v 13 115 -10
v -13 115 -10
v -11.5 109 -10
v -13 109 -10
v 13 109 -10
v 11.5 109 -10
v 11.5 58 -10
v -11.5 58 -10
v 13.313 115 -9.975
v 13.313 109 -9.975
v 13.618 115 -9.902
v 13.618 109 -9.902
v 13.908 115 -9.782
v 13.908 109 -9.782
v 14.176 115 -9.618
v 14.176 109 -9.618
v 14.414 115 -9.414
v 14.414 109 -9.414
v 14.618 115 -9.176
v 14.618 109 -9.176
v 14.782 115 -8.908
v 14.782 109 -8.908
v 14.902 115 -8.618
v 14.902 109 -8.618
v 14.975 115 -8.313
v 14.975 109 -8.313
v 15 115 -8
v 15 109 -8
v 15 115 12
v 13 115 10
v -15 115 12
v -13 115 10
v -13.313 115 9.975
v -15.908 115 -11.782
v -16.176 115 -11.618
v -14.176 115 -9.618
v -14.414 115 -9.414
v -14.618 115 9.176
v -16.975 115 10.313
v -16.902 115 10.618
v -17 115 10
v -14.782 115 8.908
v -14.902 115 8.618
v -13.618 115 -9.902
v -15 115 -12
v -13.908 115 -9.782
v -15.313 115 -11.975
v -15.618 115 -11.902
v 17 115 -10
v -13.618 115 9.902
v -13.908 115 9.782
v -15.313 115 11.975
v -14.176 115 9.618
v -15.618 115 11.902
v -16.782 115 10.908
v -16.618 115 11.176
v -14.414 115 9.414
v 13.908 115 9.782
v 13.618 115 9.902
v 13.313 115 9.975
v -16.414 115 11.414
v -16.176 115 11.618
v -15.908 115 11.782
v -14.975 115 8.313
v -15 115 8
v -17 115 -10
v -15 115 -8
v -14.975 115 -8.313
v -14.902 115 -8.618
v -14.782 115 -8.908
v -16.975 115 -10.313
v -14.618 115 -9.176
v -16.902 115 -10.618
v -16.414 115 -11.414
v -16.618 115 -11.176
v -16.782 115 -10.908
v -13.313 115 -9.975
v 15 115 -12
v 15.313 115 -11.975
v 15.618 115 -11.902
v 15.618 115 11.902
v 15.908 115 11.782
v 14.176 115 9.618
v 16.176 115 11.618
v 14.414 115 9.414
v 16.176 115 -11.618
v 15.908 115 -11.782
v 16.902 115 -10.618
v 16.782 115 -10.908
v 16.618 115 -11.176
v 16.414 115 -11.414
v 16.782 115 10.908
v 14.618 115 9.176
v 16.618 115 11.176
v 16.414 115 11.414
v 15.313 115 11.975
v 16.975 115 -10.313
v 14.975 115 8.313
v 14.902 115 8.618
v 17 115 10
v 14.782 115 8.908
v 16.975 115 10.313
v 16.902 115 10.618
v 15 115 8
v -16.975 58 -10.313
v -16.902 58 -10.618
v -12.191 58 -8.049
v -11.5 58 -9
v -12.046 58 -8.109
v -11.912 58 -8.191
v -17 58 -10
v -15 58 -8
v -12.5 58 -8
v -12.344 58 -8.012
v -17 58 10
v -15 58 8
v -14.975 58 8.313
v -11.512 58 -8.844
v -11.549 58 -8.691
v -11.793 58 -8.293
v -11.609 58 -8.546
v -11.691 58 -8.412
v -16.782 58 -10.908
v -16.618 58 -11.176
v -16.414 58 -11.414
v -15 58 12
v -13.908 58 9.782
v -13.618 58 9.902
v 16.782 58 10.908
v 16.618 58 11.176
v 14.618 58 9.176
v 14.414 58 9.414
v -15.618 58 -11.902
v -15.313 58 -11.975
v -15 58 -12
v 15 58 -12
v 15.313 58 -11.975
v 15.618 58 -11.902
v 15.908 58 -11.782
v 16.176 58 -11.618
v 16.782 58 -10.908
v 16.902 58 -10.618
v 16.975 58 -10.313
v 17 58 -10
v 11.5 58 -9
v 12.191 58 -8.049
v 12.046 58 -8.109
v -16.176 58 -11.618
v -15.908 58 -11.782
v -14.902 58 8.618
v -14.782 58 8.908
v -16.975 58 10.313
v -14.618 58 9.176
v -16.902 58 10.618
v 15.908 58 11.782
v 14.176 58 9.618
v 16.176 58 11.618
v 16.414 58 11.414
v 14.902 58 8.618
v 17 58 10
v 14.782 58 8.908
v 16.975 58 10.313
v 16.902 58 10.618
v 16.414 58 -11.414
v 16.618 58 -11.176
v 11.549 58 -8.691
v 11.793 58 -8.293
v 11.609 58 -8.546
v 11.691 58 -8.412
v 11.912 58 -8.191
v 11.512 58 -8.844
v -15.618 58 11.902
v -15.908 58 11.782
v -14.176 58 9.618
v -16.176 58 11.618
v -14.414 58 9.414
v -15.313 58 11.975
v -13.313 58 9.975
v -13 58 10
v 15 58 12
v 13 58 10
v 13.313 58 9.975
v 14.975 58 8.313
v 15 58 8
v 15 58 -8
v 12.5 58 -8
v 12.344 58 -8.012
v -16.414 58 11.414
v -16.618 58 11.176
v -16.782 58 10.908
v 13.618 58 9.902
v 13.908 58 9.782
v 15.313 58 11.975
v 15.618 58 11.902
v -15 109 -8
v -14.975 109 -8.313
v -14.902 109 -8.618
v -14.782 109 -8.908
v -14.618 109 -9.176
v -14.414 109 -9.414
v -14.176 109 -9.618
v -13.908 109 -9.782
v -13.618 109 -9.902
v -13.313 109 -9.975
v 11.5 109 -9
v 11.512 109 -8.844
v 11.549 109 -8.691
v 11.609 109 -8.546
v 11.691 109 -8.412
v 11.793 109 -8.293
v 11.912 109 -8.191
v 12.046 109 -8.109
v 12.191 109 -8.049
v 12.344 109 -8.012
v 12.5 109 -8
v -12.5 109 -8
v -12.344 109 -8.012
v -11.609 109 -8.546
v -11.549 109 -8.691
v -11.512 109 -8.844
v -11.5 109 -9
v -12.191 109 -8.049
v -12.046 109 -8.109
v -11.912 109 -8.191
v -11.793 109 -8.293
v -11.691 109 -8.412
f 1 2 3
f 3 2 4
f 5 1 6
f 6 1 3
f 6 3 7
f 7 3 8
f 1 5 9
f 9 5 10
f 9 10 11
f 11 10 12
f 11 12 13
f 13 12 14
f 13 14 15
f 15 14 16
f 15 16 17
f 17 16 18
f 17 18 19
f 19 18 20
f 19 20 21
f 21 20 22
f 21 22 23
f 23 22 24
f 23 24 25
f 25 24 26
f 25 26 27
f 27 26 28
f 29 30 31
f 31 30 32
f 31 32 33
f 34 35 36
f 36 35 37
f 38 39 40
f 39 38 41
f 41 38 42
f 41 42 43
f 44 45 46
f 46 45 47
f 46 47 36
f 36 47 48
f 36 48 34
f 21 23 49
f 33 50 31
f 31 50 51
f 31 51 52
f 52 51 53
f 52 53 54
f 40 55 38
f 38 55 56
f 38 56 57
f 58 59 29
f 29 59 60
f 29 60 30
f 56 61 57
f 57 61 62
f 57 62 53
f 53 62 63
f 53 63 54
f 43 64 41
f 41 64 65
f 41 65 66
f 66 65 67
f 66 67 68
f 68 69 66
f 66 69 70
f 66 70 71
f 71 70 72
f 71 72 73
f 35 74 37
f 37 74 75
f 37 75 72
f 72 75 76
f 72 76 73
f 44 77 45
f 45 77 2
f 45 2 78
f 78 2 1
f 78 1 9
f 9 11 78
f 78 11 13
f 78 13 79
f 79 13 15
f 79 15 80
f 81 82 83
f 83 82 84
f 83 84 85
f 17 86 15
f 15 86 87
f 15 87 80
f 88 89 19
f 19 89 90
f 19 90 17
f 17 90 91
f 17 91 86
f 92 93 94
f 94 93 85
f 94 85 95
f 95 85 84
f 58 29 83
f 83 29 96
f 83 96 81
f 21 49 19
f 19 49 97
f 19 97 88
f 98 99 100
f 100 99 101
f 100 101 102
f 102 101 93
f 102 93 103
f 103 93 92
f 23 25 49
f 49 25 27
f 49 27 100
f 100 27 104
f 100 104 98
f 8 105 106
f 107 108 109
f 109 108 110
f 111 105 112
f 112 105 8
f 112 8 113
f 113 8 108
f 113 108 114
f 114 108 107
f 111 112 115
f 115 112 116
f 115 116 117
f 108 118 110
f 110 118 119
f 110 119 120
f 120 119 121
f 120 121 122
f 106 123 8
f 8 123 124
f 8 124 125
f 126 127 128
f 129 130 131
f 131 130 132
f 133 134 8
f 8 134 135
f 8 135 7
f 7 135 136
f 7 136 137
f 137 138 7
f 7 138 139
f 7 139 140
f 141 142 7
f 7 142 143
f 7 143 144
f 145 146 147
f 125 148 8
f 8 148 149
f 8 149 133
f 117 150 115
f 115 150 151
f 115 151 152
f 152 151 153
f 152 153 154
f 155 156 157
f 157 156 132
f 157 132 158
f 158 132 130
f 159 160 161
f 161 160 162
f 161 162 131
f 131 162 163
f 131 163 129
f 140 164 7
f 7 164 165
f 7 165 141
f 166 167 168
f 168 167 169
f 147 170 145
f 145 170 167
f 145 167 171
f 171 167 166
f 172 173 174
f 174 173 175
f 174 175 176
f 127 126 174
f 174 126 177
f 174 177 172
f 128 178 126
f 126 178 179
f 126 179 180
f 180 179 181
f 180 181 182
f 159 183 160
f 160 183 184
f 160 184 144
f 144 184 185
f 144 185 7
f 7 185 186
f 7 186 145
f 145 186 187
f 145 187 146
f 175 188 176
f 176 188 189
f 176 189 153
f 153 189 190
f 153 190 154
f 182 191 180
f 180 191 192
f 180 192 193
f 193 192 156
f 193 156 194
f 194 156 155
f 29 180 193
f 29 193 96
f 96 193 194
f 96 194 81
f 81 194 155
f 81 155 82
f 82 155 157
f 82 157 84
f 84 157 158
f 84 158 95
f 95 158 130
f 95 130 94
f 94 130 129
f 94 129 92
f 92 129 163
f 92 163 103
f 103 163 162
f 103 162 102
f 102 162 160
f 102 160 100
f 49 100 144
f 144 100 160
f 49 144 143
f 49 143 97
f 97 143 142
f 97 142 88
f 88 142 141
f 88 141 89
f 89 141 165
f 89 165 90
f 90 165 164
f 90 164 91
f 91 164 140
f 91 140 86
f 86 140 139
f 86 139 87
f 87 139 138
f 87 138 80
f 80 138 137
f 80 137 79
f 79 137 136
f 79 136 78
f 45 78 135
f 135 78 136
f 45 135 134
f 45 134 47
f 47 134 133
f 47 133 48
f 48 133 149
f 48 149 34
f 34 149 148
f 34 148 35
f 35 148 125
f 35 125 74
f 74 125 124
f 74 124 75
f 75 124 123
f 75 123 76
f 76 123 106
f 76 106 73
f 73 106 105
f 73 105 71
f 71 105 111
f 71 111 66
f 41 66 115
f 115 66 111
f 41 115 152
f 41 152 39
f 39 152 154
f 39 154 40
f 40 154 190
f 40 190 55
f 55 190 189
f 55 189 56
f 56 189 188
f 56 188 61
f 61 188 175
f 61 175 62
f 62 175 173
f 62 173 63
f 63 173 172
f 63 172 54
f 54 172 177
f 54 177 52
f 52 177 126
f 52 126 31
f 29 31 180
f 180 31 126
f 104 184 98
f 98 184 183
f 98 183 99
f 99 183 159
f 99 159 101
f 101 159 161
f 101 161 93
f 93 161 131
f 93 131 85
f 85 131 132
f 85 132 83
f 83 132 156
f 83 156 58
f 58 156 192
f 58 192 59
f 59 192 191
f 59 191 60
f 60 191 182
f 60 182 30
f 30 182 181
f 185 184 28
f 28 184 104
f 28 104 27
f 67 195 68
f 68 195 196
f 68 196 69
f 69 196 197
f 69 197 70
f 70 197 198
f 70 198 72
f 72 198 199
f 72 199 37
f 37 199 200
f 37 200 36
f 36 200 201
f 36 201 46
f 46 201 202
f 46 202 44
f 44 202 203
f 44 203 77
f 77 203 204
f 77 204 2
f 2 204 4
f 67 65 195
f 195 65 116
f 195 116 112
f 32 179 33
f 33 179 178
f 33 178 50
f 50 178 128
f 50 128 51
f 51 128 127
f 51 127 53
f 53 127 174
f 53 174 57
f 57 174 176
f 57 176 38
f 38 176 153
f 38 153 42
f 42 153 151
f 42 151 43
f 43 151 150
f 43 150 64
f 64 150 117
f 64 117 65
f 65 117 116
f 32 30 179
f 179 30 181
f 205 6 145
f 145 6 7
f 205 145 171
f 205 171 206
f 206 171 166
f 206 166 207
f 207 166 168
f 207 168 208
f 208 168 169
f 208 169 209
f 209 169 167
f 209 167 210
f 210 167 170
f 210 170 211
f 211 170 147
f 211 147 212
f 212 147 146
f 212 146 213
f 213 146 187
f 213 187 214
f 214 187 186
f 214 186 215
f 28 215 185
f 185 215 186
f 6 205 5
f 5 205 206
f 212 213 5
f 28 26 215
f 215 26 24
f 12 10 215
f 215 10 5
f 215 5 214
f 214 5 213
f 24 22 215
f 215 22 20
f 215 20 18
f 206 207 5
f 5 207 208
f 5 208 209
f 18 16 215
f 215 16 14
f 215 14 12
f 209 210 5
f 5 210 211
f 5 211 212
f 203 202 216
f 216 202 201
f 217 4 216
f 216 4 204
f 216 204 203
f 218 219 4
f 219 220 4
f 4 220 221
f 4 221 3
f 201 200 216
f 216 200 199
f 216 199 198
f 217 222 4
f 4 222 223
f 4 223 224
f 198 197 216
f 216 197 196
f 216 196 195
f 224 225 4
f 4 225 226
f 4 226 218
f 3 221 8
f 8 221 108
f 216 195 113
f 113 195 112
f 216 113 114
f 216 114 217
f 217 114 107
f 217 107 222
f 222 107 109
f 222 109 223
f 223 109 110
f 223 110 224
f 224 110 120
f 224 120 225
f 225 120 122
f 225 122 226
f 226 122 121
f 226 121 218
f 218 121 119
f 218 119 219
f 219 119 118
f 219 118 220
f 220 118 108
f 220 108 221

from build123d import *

# Parameters (mm, degrees)
BOSS_EXTRUDE4_DEPTH = 57
BOSS_EXTRUDE5_DEPTH = 51


with BuildPart() as part:
    # Sketch8 → Boss-Extrude4 (new body)
    with BuildSketch(Plane(origin=(0, 58, 0), x_dir=(1, 0, 0), z_dir=(0, 1, 0))):
        with BuildLine():
            Line((-15, -12), (15, -12))
            ThreePointArc((15, -12), (16.414213562, -11.414213562), (17, -10))
            Line((17, -10), (17, 10))
            ThreePointArc((17, 10), (16.414213562, 11.414213562), (15, 12))
            Line((15, 12), (-15, 12))
            ThreePointArc((-15, 12), (-16.414213562, 11.414213562), (-17, 10))
            Line((-17, 10), (-17, -10))
            ThreePointArc((-17, -10), (-16.414213562, -11.414213562), (-15, -12))
        make_face()
        with BuildLine():
            Line((-13, -10), (13, -10))
            ThreePointArc((13, -10), (14.414213562, -9.414213562), (15, -8))
            Line((15, -8), (15, 8))
            ThreePointArc((15, 8), (14.414213562, 9.414213562), (13, 10))
            Line((13, 10), (-13, 10))
            ThreePointArc((-13, 10), (-14.414213562, 9.414213562), (-15, 8))
            Line((-15, 8), (-15, -8))
            ThreePointArc((-15, -8), (-14.414213562, -9.414213562), (-13, -10))
        make_face(mode=Mode.SUBTRACT)
    extrude(amount=BOSS_EXTRUDE4_DEPTH)

    # Sketch11 → Boss-Extrude5 (add)
    with BuildSketch(Plane(origin=(0, 58, 0), x_dir=(1, 0, 0), z_dir=(0, 1, 0))):
        with BuildLine():
            Line((15, 8), (12.5, 8))
            ThreePointArc((12.5, 8), (11.792893219, 8.292893219), (11.5, 9))
            Line((11.5, 9), (11.5, 10))
            Line((11.5, 10), (15, 10))
            Line((15, 10), (15, 8))
        make_face()
        with BuildLine():
            Line((-11.5, 10), (-15, 10))
            Line((-15, 10), (-15, 8))
            Line((-15, 8), (-12.5, 8))
            ThreePointArc((-12.5, 8), (-11.792893219, 8.292893219), (-11.5, 9))
            Line((-11.5, 9), (-11.5, 10))
        make_face()
    extrude(amount=BOSS_EXTRUDE5_DEPTH)


solid = part.part
